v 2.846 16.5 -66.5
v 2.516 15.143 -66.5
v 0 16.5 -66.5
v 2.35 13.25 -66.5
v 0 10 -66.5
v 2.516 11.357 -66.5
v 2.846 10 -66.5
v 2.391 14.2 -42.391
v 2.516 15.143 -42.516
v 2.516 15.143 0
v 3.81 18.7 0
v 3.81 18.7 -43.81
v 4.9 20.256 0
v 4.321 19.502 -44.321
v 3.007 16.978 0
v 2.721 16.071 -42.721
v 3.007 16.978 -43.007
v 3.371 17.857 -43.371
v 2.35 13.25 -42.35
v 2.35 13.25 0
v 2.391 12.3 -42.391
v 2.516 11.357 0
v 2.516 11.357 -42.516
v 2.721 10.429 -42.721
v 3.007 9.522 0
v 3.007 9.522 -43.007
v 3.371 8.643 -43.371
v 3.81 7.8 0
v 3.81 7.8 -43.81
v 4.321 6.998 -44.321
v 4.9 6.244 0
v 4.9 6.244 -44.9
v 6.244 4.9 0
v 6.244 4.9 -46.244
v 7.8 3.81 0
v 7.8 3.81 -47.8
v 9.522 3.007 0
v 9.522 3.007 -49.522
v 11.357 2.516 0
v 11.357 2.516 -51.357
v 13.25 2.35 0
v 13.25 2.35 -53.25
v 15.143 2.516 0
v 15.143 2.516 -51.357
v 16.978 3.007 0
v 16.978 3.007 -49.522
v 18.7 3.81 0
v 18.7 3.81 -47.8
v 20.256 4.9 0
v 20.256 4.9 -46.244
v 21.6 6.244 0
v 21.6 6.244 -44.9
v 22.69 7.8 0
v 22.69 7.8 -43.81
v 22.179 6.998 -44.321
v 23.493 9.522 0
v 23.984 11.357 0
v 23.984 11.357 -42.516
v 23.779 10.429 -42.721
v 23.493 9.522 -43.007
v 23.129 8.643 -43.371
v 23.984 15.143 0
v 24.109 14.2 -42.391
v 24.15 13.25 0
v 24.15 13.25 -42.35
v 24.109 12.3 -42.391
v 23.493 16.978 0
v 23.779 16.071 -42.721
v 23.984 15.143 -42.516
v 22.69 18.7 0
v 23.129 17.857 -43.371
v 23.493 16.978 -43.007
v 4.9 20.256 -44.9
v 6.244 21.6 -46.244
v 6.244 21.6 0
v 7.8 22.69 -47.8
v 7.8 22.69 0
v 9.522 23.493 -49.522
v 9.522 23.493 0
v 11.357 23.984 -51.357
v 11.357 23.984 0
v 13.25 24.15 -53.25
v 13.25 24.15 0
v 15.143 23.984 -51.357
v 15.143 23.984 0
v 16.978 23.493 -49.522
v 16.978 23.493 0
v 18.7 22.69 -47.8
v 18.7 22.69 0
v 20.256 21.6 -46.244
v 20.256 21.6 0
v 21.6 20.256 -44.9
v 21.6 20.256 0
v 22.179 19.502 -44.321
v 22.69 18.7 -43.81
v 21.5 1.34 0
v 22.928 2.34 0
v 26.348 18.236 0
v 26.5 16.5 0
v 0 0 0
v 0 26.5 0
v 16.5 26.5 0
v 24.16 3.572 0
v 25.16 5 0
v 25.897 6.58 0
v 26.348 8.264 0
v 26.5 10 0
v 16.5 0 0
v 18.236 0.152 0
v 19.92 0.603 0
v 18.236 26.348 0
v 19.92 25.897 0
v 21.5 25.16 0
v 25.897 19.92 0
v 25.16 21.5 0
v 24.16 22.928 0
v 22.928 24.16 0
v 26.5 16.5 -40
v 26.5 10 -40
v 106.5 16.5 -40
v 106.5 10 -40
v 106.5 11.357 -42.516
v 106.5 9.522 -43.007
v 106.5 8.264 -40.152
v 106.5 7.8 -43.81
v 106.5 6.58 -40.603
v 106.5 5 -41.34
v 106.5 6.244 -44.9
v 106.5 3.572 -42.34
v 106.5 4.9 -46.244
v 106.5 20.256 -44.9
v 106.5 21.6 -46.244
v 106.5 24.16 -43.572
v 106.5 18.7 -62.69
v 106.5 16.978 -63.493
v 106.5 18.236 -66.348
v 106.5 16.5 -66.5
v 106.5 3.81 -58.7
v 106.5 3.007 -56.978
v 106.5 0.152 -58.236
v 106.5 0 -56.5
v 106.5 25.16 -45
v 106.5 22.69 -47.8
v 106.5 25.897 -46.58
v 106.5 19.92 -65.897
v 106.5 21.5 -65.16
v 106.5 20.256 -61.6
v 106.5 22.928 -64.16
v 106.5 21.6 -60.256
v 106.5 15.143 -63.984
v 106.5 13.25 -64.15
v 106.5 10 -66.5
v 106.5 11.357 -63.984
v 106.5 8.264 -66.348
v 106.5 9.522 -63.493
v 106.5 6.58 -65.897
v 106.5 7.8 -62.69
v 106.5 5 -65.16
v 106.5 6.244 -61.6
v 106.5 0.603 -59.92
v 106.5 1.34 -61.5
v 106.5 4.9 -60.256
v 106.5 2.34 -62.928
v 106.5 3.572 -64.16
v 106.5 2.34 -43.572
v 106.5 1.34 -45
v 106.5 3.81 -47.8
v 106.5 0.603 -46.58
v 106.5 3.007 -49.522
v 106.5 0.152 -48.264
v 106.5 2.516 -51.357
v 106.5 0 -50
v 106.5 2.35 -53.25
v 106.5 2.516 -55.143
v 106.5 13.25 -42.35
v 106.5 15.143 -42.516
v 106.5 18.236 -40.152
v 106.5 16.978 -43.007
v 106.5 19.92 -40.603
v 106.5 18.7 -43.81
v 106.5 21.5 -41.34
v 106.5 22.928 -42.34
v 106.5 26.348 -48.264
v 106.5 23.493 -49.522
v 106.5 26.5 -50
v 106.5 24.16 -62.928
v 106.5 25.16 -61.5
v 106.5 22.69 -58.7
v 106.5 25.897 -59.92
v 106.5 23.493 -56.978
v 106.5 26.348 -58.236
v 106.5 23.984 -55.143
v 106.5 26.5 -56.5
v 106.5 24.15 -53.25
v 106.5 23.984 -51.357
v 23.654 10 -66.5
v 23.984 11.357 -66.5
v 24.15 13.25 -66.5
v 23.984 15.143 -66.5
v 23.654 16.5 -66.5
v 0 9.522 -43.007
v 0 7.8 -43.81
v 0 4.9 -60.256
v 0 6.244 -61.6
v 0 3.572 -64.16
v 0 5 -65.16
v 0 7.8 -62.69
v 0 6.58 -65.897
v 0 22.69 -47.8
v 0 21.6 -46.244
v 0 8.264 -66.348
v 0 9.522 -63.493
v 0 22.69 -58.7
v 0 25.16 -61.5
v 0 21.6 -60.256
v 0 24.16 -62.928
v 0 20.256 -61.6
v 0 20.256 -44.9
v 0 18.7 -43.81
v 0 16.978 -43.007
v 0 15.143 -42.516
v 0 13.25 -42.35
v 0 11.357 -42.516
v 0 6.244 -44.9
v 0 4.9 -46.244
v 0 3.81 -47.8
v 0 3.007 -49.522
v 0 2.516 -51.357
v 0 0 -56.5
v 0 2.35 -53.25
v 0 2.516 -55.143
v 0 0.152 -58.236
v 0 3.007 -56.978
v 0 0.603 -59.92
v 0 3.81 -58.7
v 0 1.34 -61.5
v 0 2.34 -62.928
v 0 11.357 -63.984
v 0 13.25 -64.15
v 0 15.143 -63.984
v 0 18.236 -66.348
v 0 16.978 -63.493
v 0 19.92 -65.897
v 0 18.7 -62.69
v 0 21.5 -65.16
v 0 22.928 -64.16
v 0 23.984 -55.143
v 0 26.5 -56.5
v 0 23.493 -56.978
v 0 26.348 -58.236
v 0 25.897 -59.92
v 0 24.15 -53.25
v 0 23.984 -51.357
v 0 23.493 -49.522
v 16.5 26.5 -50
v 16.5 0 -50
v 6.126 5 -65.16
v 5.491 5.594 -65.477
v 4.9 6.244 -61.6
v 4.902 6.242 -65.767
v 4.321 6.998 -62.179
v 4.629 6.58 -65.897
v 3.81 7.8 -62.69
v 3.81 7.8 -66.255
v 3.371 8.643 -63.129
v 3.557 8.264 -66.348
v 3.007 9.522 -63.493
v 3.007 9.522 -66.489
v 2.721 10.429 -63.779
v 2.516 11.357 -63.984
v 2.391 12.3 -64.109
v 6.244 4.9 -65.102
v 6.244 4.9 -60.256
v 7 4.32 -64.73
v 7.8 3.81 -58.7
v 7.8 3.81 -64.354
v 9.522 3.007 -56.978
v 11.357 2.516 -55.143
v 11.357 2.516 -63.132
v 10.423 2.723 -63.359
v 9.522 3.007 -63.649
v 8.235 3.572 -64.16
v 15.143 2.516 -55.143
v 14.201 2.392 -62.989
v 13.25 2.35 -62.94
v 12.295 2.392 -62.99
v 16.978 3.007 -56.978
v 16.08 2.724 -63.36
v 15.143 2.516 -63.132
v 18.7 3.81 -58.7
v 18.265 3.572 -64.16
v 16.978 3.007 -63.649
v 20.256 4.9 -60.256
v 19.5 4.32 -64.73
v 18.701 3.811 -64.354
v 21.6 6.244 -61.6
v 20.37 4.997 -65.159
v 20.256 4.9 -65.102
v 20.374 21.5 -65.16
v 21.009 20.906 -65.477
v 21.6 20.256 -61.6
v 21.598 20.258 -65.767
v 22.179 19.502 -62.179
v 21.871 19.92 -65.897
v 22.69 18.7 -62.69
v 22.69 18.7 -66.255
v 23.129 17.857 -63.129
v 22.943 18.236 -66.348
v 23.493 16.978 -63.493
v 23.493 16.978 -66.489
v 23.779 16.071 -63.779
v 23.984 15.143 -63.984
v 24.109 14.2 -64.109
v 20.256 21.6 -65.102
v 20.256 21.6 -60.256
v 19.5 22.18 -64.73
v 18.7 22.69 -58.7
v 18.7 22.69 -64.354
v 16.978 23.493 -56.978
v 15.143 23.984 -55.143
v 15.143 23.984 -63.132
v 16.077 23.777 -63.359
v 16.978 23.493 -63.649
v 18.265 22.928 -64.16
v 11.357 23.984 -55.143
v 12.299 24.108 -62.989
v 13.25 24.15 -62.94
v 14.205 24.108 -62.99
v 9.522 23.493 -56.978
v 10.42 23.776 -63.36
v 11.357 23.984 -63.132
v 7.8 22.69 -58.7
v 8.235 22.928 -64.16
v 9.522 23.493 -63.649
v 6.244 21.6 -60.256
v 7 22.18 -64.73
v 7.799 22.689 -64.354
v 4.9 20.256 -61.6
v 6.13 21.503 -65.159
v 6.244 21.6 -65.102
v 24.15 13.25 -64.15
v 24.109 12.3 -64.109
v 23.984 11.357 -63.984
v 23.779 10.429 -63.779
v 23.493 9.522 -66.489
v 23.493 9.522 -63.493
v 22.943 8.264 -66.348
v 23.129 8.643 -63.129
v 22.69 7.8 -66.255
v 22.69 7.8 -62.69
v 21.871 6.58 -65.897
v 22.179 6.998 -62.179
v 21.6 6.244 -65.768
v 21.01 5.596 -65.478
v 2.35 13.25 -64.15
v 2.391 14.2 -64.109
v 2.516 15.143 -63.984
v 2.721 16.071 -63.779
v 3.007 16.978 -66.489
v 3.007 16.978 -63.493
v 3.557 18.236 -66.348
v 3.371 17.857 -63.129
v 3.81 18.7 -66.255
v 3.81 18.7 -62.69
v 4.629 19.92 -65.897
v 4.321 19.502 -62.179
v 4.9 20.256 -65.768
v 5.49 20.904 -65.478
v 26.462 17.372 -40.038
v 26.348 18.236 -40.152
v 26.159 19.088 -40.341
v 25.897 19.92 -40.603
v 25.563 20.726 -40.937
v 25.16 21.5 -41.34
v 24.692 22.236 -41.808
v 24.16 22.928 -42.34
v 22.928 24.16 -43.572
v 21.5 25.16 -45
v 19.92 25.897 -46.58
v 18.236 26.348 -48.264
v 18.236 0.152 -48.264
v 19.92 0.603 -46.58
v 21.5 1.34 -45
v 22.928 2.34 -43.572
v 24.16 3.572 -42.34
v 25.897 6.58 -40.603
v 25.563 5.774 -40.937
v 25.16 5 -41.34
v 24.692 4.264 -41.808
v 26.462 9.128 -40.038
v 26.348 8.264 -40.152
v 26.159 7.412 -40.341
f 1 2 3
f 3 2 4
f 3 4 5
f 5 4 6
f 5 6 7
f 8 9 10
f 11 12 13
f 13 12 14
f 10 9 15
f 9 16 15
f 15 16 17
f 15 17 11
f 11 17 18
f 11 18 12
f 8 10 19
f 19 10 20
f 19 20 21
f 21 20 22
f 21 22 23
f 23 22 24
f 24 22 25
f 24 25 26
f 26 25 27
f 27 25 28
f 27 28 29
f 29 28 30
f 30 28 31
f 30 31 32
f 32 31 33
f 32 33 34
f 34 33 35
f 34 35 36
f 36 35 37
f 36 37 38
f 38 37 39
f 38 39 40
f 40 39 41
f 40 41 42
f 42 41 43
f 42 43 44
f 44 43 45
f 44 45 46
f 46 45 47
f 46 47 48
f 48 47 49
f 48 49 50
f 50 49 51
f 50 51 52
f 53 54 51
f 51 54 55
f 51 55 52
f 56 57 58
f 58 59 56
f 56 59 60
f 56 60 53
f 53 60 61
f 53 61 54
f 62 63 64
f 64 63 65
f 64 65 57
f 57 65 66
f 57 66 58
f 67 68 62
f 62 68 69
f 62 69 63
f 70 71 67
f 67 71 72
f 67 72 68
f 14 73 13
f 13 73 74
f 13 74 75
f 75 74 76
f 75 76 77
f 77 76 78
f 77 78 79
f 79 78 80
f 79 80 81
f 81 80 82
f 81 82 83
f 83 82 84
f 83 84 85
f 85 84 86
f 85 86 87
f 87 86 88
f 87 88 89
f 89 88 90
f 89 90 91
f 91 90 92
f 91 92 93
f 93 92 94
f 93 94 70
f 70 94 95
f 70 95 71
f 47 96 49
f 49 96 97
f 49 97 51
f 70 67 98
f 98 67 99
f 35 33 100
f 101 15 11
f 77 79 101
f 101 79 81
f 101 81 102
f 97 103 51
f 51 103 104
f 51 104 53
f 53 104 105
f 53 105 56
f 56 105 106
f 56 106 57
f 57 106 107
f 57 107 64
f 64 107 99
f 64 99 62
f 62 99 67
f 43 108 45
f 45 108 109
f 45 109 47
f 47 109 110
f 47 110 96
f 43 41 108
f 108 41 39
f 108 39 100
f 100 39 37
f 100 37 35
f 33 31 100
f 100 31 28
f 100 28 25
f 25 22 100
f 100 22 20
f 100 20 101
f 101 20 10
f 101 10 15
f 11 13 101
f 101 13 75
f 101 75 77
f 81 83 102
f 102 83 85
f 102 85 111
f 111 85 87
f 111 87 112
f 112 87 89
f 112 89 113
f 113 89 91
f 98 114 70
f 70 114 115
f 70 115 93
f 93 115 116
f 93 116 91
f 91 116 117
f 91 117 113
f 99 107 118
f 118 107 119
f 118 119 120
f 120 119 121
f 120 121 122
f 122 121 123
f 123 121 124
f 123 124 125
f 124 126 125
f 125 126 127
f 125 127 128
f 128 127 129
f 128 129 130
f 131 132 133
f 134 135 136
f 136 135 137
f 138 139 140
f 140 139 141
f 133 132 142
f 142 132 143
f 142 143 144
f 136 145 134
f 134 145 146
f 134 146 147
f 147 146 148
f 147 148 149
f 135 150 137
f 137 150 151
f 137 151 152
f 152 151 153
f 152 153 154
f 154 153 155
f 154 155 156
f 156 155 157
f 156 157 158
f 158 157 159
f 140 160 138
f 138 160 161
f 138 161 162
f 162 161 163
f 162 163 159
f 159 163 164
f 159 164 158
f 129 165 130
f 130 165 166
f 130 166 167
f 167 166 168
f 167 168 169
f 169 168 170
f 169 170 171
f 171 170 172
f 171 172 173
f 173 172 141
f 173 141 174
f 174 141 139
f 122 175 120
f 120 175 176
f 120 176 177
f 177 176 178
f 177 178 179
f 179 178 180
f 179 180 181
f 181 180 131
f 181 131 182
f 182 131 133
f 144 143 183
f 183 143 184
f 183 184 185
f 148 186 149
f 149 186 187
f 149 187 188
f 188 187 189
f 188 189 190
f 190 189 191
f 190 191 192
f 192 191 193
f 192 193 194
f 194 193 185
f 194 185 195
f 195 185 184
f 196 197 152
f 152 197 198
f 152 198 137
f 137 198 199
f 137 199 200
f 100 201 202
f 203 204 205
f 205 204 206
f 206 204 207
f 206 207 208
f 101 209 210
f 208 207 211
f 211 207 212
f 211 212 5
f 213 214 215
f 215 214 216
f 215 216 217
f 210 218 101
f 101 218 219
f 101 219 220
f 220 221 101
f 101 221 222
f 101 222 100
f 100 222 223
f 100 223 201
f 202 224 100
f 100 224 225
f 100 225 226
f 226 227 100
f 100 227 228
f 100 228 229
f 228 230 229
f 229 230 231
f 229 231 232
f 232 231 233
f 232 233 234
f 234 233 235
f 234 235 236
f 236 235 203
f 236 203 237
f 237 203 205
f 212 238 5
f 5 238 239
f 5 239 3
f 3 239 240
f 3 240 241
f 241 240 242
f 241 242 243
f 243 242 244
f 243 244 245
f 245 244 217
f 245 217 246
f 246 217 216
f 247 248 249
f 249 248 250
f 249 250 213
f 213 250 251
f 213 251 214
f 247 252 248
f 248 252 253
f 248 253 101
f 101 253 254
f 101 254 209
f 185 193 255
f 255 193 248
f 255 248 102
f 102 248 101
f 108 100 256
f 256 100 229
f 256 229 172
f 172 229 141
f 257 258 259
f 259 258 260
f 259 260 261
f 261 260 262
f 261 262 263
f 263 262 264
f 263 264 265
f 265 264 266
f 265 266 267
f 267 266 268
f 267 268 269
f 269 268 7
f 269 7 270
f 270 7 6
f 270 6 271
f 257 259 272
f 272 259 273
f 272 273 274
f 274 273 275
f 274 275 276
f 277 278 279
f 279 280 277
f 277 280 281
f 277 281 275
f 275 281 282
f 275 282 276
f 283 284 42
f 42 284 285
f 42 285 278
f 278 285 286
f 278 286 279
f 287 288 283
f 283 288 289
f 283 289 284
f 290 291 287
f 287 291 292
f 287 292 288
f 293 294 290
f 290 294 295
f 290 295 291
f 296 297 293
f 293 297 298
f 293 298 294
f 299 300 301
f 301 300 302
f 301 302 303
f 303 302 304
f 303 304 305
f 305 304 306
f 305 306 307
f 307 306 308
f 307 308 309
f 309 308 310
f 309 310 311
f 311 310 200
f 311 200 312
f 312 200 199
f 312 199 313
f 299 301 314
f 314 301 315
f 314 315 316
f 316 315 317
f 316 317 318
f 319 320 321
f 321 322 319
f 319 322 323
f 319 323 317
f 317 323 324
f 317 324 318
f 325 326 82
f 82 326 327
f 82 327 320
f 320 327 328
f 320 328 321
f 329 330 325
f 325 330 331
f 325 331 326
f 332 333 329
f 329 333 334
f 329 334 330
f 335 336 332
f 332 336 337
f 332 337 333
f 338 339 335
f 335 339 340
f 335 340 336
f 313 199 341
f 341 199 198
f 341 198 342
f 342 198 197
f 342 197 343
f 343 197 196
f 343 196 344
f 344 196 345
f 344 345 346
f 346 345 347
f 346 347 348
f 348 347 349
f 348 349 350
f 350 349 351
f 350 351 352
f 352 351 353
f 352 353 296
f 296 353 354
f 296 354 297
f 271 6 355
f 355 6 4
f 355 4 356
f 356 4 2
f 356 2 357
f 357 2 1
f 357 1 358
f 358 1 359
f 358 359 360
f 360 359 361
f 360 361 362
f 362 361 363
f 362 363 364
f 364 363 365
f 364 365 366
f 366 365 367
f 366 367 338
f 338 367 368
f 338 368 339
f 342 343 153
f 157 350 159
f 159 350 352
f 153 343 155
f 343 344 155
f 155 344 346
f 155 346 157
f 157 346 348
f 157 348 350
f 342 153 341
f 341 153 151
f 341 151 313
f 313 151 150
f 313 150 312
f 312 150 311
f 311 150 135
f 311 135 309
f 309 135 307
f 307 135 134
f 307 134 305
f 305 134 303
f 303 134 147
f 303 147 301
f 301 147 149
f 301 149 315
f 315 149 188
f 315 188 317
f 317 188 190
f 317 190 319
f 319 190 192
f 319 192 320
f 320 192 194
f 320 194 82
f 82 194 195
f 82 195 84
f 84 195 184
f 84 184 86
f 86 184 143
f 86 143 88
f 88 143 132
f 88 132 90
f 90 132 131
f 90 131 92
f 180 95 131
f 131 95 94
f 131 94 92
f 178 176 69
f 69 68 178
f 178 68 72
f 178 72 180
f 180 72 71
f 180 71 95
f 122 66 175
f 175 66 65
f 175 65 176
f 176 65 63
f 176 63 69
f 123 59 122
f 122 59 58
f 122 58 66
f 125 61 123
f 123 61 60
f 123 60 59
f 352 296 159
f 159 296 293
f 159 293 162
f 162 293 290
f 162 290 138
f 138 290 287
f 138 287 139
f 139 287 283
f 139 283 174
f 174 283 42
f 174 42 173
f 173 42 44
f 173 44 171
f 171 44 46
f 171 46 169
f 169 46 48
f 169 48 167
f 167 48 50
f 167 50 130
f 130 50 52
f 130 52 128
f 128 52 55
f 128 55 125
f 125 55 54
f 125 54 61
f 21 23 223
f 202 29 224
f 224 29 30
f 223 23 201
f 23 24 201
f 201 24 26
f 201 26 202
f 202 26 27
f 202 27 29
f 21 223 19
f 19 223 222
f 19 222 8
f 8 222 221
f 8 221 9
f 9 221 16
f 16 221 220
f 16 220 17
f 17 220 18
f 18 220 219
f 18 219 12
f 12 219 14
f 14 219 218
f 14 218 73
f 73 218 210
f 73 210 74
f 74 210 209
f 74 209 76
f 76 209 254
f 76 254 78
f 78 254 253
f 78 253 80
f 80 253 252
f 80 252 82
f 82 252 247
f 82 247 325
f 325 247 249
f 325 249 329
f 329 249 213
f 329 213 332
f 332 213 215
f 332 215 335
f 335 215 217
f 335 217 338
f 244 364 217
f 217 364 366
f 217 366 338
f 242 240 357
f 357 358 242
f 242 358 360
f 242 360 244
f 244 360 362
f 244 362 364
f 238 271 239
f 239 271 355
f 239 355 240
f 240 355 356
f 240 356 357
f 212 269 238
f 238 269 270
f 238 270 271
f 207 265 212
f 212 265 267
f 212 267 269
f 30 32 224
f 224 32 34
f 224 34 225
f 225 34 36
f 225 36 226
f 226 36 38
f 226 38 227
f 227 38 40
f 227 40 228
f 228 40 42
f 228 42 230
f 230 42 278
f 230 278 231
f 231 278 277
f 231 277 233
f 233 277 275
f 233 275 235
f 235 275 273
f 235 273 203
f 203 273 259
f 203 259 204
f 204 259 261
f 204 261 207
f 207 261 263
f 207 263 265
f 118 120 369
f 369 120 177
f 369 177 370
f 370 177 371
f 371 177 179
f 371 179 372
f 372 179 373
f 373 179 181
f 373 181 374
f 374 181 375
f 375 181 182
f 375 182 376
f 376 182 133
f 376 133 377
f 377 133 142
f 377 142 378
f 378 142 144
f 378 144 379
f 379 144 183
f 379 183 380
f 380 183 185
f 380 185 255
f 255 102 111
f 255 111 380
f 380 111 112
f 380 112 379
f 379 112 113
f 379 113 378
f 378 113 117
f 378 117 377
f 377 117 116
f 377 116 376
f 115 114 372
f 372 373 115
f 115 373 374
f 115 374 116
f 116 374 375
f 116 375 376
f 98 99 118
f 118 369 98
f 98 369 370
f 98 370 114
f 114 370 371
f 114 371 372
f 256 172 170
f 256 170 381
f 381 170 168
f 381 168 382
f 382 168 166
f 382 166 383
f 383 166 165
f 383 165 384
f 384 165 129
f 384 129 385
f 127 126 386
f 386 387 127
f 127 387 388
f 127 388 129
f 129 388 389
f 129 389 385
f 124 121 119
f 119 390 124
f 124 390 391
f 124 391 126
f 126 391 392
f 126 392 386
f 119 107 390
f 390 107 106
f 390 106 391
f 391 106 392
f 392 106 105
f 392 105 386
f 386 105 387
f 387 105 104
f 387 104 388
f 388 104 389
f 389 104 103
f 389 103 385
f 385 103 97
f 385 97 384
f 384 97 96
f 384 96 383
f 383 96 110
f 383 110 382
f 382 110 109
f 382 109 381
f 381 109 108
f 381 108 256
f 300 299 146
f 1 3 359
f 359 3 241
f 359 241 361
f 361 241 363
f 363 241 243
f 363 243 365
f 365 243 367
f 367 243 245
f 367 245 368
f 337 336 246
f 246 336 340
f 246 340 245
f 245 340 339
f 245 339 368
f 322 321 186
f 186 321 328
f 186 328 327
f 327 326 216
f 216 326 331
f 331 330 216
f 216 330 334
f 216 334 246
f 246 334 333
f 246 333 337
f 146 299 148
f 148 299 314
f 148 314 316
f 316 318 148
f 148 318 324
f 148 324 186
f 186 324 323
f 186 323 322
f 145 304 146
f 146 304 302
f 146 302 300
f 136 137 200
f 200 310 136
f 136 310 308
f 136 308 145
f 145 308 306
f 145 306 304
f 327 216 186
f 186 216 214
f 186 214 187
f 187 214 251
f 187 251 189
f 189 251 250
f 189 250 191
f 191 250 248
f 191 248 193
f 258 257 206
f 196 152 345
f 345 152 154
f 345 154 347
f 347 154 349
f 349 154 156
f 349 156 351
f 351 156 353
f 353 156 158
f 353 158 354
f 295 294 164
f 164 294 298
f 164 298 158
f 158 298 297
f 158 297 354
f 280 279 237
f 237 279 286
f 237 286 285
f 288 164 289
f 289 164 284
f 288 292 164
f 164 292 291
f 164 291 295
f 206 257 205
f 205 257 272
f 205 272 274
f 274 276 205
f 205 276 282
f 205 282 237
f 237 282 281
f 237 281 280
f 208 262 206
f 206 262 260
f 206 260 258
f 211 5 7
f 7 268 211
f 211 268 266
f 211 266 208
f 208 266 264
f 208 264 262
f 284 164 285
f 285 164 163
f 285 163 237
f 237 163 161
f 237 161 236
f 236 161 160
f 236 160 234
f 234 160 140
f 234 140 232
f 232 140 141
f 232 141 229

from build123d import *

# Parameters (mm, degrees)
BOSS_EXTRUDE1_DEPTH = 26.5
SKETCH3_R           = 10.9
CUT_EXTRUDE1_DEPTH  = 129.322835068
SKETCH4_R           = 10.9
CUT_EXTRUDE2_DEPTH  = 129.322835068
FILLET1_R           = 10


with BuildPart() as part:
    # Sketch2 → Boss-Extrude1 (new body)
    with BuildSketch(Plane(origin=(0, 0, 0), x_dir=(1, 0, 0), z_dir=(0, 1, 0))):
        Polygon((0, 0), (0, 66.5), (106.5, 66.5), (106.5, 40), (26.5, 40), (26.5, 0), align=None)
    extrude(amount=BOSS_EXTRUDE1_DEPTH)

    # Sketch3 → Cut-Extrude1 (cut, through all)
    with BuildSketch(Plane.XY):
        with Locations((13.25, 13.25)):
            Circle(SKETCH3_R)
    extrude(amount=-CUT_EXTRUDE1_DEPTH, mode=Mode.SUBTRACT)

    # Sketch4 → Cut-Extrude2 (cut, through all)
    with BuildSketch(Plane(origin=(106.5, 0, 0), x_dir=(0, 0, -1), z_dir=(1, 0, 0))):
        with Locations((53.25, 13.25)):
            Circle(SKETCH4_R)
    extrude(amount=-CUT_EXTRUDE2_DEPTH, mode=Mode.SUBTRACT)

    # Fillet1
    # the kernel refuses this fillet: 10 mm, written as the material it takes off along each edge
    with BuildSketch(Plane(origin=(106.5, 26.5, -40), x_dir=(0, 0, -1), z_dir=(-1, 0, 0))) as fillet1_piece_1:
        with BuildLine():
            CenterArc((FILLET1_R, FILLET1_R), FILLET1_R, 180, 90)
            Line((0, FILLET1_R), (-FILLET1_R * 0.02, FILLET1_R))
            Line((-FILLET1_R * 0.02, FILLET1_R), (-FILLET1_R * 0.02, -FILLET1_R * 0.02))
            Line((-FILLET1_R * 0.02, -FILLET1_R * 0.02), (FILLET1_R, -FILLET1_R * 0.02))
            Line((FILLET1_R, -FILLET1_R * 0.02), (FILLET1_R, 0))
        make_face()
    extrude(amount=80, mode=Mode.SUBTRACT)
    with BuildSketch(Plane(origin=(0, 26.5, -66.5), x_dir=(0, 0, 1), z_dir=(1, 0, 0))) as fillet1_piece_2:
        with BuildLine():
            CenterArc((FILLET1_R, FILLET1_R), FILLET1_R, 180, 90)
            Line((0, FILLET1_R), (-FILLET1_R * 0.02, FILLET1_R))
            Line((-FILLET1_R * 0.02, FILLET1_R), (-FILLET1_R * 0.02, -FILLET1_R * 0.02))
            Line((-FILLET1_R * 0.02, -FILLET1_R * 0.02), (FILLET1_R, -FILLET1_R * 0.02))
            Line((FILLET1_R, -FILLET1_R * 0.02), (FILLET1_R, 0))
        make_face()
    extrude(amount=106.5, mode=Mode.SUBTRACT)
    with BuildSketch(Plane(origin=(0, 0, -66.5), x_dir=(0, 0, 1), z_dir=(1, 0, 0))) as fillet1_piece_3:
        with BuildLine():
            CenterArc((FILLET1_R, -FILLET1_R), FILLET1_R, 90, 90)
            Line((0, -FILLET1_R), (-FILLET1_R * 0.02, -FILLET1_R))
            Line((-FILLET1_R * 0.02, -FILLET1_R), (-FILLET1_R * 0.02, FILLET1_R * 0.02))
            Line((-FILLET1_R * 0.02, FILLET1_R * 0.02), (FILLET1_R, FILLET1_R * 0.02))
            Line((FILLET1_R, FILLET1_R * 0.02), (FILLET1_R, 0))
        make_face()
    extrude(amount=106.5, mode=Mode.SUBTRACT)
    with BuildSketch(Plane(origin=(106.5, 0, -40), x_dir=(0, 0, -1), z_dir=(-1, 0, 0))) as fillet1_piece_4:
        with BuildLine():
            CenterArc((FILLET1_R, -FILLET1_R), FILLET1_R, 90, 90)
            Line((0, -FILLET1_R), (-FILLET1_R * 0.02, -FILLET1_R))
            Line((-FILLET1_R * 0.02, -FILLET1_R), (-FILLET1_R * 0.02, FILLET1_R * 0.02))
            Line((-FILLET1_R * 0.02, FILLET1_R * 0.02), (FILLET1_R, FILLET1_R * 0.02))
            Line((FILLET1_R, FILLET1_R * 0.02), (FILLET1_R, 0))
        make_face()
    extrude(amount=80, mode=Mode.SUBTRACT)
    with BuildSketch(Plane(origin=(26.5, 0, -40), x_dir=(-1, 0, 0), z_dir=(0, 0, 1))) as fillet1_piece_5:
        with BuildLine():
            CenterArc((FILLET1_R, -FILLET1_R), FILLET1_R, 90, 90)
            Line((0, -FILLET1_R), (-FILLET1_R * 0.02, -FILLET1_R))
            Line((-FILLET1_R * 0.02, -FILLET1_R), (-FILLET1_R * 0.02, FILLET1_R * 0.02))
            Line((-FILLET1_R * 0.02, FILLET1_R * 0.02), (FILLET1_R, FILLET1_R * 0.02))
            Line((FILLET1_R, FILLET1_R * 0.02), (FILLET1_R, 0))
        make_face()
    extrude(amount=40, mode=Mode.SUBTRACT)
    with BuildSketch(Plane(origin=(26.5, 26.5, -40), x_dir=(-1, 0, 0), z_dir=(0, 0, 1))) as fillet1_piece_6:
        with BuildLine():
            CenterArc((FILLET1_R, FILLET1_R), FILLET1_R, 180, 90)
            Line((0, FILLET1_R), (-FILLET1_R * 0.02, FILLET1_R))
            Line((-FILLET1_R * 0.02, FILLET1_R), (-FILLET1_R * 0.02, -FILLET1_R * 0.02))
            Line((-FILLET1_R * 0.02, -FILLET1_R * 0.02), (FILLET1_R, -FILLET1_R * 0.02))
            Line((FILLET1_R, -FILLET1_R * 0.02), (FILLET1_R, 0))
        make_face()
    extrude(amount=40, mode=Mode.SUBTRACT)
    with BuildSketch(Plane(origin=(106.5, 26.5, -40), x_dir=(0, 0, -1), z_dir=(-1, 0, 0))) as fillet1_piece_7a_section:
        with BuildLine():
            CenterArc((FILLET1_R, FILLET1_R), FILLET1_R, 180, 90)
            Line((0, FILLET1_R), (-FILLET1_R * 0.02, FILLET1_R))
            Line((-FILLET1_R * 0.02, FILLET1_R), (-FILLET1_R * 0.02, -FILLET1_R * 0.02))
            Line((-FILLET1_R * 0.02, -FILLET1_R * 0.02), (FILLET1_R, -FILLET1_R * 0.02))
            Line((FILLET1_R, -FILLET1_R * 0.02), (FILLET1_R, 0))
        make_face()
    fillet1_piece_7a = extrude(amount=105, mode=Mode.PRIVATE)
    fillet1_piece_7a = split(fillet1_piece_7a, bisect_by=Plane(origin=(26.5, 24.236048857, -42.263951143), z_dir=(-1, 0, 0)), keep=Keep.TOP, mode=Mode.PRIVATE)
    with BuildSketch(Plane(origin=(26.5, 26.5, -65), x_dir=(-1, 0, 0), z_dir=(0, 0, 1))) as fillet1_piece_7b_section:
        with BuildLine():
            CenterArc((FILLET1_R, FILLET1_R), FILLET1_R, 180, 90)
            Line((0, FILLET1_R), (-FILLET1_R * 0.02, FILLET1_R))
            Line((-FILLET1_R * 0.02, FILLET1_R), (-FILLET1_R * 0.02, -FILLET1_R * 0.02))
            Line((-FILLET1_R * 0.02, -FILLET1_R * 0.02), (FILLET1_R, -FILLET1_R * 0.02))
            Line((FILLET1_R, -FILLET1_R * 0.02), (FILLET1_R, 0))
        make_face()
    fillet1_piece_7b = extrude(amount=65, mode=Mode.PRIVATE)
    fillet1_piece_7b = split(fillet1_piece_7b, bisect_by=Plane(origin=(24.236048857, 24.236048857, -40), z_dir=(0, 0, -1)), keep=Keep.TOP, mode=Mode.PRIVATE)
    fillet1_piece_7 = fillet1_piece_7a & fillet1_piece_7b
    add(fillet1_piece_7, mode=Mode.SUBTRACT)
    with BuildSketch(Plane(origin=(106.5, 0, -40), x_dir=(0, 0, -1), z_dir=(-1, 0, 0))) as fillet1_piece_8a_section:
        with BuildLine():
            CenterArc((FILLET1_R, -FILLET1_R), FILLET1_R, 90, 90)
            Line((0, -FILLET1_R), (-FILLET1_R * 0.02, -FILLET1_R))
            Line((-FILLET1_R * 0.02, -FILLET1_R), (-FILLET1_R * 0.02, FILLET1_R * 0.02))
            Line((-FILLET1_R * 0.02, FILLET1_R * 0.02), (FILLET1_R, FILLET1_R * 0.02))
            Line((FILLET1_R, FILLET1_R * 0.02), (FILLET1_R, 0))
        make_face()
    fillet1_piece_8a = extrude(amount=105, mode=Mode.PRIVATE)
    fillet1_piece_8a = split(fillet1_piece_8a, bisect_by=Plane(origin=(26.5, 2.263951143, -42.263951143), z_dir=(-1, 0, 0)), keep=Keep.TOP, mode=Mode.PRIVATE)
    with BuildSketch(Plane(origin=(26.5, 0, -65), x_dir=(-1, 0, 0), z_dir=(0, 0, 1))) as fillet1_piece_8b_section:
        with BuildLine():
            CenterArc((FILLET1_R, -FILLET1_R), FILLET1_R, 90, 90)
            Line((0, -FILLET1_R), (-FILLET1_R * 0.02, -FILLET1_R))
            Line((-FILLET1_R * 0.02, -FILLET1_R), (-FILLET1_R * 0.02, FILLET1_R * 0.02))
            Line((-FILLET1_R * 0.02, FILLET1_R * 0.02), (FILLET1_R, FILLET1_R * 0.02))
            Line((FILLET1_R, FILLET1_R * 0.02), (FILLET1_R, 0))
        make_face()
    fillet1_piece_8b = extrude(amount=65, mode=Mode.PRIVATE)
    fillet1_piece_8b = split(fillet1_piece_8b, bisect_by=Plane(origin=(24.236048857, 2.263951143, -40), z_dir=(0, 0, -1)), keep=Keep.TOP, mode=Mode.PRIVATE)
    fillet1_piece_8 = fillet1_piece_8a & fillet1_piece_8b
    add(fillet1_piece_8, mode=Mode.SUBTRACT)


solid = part.part
